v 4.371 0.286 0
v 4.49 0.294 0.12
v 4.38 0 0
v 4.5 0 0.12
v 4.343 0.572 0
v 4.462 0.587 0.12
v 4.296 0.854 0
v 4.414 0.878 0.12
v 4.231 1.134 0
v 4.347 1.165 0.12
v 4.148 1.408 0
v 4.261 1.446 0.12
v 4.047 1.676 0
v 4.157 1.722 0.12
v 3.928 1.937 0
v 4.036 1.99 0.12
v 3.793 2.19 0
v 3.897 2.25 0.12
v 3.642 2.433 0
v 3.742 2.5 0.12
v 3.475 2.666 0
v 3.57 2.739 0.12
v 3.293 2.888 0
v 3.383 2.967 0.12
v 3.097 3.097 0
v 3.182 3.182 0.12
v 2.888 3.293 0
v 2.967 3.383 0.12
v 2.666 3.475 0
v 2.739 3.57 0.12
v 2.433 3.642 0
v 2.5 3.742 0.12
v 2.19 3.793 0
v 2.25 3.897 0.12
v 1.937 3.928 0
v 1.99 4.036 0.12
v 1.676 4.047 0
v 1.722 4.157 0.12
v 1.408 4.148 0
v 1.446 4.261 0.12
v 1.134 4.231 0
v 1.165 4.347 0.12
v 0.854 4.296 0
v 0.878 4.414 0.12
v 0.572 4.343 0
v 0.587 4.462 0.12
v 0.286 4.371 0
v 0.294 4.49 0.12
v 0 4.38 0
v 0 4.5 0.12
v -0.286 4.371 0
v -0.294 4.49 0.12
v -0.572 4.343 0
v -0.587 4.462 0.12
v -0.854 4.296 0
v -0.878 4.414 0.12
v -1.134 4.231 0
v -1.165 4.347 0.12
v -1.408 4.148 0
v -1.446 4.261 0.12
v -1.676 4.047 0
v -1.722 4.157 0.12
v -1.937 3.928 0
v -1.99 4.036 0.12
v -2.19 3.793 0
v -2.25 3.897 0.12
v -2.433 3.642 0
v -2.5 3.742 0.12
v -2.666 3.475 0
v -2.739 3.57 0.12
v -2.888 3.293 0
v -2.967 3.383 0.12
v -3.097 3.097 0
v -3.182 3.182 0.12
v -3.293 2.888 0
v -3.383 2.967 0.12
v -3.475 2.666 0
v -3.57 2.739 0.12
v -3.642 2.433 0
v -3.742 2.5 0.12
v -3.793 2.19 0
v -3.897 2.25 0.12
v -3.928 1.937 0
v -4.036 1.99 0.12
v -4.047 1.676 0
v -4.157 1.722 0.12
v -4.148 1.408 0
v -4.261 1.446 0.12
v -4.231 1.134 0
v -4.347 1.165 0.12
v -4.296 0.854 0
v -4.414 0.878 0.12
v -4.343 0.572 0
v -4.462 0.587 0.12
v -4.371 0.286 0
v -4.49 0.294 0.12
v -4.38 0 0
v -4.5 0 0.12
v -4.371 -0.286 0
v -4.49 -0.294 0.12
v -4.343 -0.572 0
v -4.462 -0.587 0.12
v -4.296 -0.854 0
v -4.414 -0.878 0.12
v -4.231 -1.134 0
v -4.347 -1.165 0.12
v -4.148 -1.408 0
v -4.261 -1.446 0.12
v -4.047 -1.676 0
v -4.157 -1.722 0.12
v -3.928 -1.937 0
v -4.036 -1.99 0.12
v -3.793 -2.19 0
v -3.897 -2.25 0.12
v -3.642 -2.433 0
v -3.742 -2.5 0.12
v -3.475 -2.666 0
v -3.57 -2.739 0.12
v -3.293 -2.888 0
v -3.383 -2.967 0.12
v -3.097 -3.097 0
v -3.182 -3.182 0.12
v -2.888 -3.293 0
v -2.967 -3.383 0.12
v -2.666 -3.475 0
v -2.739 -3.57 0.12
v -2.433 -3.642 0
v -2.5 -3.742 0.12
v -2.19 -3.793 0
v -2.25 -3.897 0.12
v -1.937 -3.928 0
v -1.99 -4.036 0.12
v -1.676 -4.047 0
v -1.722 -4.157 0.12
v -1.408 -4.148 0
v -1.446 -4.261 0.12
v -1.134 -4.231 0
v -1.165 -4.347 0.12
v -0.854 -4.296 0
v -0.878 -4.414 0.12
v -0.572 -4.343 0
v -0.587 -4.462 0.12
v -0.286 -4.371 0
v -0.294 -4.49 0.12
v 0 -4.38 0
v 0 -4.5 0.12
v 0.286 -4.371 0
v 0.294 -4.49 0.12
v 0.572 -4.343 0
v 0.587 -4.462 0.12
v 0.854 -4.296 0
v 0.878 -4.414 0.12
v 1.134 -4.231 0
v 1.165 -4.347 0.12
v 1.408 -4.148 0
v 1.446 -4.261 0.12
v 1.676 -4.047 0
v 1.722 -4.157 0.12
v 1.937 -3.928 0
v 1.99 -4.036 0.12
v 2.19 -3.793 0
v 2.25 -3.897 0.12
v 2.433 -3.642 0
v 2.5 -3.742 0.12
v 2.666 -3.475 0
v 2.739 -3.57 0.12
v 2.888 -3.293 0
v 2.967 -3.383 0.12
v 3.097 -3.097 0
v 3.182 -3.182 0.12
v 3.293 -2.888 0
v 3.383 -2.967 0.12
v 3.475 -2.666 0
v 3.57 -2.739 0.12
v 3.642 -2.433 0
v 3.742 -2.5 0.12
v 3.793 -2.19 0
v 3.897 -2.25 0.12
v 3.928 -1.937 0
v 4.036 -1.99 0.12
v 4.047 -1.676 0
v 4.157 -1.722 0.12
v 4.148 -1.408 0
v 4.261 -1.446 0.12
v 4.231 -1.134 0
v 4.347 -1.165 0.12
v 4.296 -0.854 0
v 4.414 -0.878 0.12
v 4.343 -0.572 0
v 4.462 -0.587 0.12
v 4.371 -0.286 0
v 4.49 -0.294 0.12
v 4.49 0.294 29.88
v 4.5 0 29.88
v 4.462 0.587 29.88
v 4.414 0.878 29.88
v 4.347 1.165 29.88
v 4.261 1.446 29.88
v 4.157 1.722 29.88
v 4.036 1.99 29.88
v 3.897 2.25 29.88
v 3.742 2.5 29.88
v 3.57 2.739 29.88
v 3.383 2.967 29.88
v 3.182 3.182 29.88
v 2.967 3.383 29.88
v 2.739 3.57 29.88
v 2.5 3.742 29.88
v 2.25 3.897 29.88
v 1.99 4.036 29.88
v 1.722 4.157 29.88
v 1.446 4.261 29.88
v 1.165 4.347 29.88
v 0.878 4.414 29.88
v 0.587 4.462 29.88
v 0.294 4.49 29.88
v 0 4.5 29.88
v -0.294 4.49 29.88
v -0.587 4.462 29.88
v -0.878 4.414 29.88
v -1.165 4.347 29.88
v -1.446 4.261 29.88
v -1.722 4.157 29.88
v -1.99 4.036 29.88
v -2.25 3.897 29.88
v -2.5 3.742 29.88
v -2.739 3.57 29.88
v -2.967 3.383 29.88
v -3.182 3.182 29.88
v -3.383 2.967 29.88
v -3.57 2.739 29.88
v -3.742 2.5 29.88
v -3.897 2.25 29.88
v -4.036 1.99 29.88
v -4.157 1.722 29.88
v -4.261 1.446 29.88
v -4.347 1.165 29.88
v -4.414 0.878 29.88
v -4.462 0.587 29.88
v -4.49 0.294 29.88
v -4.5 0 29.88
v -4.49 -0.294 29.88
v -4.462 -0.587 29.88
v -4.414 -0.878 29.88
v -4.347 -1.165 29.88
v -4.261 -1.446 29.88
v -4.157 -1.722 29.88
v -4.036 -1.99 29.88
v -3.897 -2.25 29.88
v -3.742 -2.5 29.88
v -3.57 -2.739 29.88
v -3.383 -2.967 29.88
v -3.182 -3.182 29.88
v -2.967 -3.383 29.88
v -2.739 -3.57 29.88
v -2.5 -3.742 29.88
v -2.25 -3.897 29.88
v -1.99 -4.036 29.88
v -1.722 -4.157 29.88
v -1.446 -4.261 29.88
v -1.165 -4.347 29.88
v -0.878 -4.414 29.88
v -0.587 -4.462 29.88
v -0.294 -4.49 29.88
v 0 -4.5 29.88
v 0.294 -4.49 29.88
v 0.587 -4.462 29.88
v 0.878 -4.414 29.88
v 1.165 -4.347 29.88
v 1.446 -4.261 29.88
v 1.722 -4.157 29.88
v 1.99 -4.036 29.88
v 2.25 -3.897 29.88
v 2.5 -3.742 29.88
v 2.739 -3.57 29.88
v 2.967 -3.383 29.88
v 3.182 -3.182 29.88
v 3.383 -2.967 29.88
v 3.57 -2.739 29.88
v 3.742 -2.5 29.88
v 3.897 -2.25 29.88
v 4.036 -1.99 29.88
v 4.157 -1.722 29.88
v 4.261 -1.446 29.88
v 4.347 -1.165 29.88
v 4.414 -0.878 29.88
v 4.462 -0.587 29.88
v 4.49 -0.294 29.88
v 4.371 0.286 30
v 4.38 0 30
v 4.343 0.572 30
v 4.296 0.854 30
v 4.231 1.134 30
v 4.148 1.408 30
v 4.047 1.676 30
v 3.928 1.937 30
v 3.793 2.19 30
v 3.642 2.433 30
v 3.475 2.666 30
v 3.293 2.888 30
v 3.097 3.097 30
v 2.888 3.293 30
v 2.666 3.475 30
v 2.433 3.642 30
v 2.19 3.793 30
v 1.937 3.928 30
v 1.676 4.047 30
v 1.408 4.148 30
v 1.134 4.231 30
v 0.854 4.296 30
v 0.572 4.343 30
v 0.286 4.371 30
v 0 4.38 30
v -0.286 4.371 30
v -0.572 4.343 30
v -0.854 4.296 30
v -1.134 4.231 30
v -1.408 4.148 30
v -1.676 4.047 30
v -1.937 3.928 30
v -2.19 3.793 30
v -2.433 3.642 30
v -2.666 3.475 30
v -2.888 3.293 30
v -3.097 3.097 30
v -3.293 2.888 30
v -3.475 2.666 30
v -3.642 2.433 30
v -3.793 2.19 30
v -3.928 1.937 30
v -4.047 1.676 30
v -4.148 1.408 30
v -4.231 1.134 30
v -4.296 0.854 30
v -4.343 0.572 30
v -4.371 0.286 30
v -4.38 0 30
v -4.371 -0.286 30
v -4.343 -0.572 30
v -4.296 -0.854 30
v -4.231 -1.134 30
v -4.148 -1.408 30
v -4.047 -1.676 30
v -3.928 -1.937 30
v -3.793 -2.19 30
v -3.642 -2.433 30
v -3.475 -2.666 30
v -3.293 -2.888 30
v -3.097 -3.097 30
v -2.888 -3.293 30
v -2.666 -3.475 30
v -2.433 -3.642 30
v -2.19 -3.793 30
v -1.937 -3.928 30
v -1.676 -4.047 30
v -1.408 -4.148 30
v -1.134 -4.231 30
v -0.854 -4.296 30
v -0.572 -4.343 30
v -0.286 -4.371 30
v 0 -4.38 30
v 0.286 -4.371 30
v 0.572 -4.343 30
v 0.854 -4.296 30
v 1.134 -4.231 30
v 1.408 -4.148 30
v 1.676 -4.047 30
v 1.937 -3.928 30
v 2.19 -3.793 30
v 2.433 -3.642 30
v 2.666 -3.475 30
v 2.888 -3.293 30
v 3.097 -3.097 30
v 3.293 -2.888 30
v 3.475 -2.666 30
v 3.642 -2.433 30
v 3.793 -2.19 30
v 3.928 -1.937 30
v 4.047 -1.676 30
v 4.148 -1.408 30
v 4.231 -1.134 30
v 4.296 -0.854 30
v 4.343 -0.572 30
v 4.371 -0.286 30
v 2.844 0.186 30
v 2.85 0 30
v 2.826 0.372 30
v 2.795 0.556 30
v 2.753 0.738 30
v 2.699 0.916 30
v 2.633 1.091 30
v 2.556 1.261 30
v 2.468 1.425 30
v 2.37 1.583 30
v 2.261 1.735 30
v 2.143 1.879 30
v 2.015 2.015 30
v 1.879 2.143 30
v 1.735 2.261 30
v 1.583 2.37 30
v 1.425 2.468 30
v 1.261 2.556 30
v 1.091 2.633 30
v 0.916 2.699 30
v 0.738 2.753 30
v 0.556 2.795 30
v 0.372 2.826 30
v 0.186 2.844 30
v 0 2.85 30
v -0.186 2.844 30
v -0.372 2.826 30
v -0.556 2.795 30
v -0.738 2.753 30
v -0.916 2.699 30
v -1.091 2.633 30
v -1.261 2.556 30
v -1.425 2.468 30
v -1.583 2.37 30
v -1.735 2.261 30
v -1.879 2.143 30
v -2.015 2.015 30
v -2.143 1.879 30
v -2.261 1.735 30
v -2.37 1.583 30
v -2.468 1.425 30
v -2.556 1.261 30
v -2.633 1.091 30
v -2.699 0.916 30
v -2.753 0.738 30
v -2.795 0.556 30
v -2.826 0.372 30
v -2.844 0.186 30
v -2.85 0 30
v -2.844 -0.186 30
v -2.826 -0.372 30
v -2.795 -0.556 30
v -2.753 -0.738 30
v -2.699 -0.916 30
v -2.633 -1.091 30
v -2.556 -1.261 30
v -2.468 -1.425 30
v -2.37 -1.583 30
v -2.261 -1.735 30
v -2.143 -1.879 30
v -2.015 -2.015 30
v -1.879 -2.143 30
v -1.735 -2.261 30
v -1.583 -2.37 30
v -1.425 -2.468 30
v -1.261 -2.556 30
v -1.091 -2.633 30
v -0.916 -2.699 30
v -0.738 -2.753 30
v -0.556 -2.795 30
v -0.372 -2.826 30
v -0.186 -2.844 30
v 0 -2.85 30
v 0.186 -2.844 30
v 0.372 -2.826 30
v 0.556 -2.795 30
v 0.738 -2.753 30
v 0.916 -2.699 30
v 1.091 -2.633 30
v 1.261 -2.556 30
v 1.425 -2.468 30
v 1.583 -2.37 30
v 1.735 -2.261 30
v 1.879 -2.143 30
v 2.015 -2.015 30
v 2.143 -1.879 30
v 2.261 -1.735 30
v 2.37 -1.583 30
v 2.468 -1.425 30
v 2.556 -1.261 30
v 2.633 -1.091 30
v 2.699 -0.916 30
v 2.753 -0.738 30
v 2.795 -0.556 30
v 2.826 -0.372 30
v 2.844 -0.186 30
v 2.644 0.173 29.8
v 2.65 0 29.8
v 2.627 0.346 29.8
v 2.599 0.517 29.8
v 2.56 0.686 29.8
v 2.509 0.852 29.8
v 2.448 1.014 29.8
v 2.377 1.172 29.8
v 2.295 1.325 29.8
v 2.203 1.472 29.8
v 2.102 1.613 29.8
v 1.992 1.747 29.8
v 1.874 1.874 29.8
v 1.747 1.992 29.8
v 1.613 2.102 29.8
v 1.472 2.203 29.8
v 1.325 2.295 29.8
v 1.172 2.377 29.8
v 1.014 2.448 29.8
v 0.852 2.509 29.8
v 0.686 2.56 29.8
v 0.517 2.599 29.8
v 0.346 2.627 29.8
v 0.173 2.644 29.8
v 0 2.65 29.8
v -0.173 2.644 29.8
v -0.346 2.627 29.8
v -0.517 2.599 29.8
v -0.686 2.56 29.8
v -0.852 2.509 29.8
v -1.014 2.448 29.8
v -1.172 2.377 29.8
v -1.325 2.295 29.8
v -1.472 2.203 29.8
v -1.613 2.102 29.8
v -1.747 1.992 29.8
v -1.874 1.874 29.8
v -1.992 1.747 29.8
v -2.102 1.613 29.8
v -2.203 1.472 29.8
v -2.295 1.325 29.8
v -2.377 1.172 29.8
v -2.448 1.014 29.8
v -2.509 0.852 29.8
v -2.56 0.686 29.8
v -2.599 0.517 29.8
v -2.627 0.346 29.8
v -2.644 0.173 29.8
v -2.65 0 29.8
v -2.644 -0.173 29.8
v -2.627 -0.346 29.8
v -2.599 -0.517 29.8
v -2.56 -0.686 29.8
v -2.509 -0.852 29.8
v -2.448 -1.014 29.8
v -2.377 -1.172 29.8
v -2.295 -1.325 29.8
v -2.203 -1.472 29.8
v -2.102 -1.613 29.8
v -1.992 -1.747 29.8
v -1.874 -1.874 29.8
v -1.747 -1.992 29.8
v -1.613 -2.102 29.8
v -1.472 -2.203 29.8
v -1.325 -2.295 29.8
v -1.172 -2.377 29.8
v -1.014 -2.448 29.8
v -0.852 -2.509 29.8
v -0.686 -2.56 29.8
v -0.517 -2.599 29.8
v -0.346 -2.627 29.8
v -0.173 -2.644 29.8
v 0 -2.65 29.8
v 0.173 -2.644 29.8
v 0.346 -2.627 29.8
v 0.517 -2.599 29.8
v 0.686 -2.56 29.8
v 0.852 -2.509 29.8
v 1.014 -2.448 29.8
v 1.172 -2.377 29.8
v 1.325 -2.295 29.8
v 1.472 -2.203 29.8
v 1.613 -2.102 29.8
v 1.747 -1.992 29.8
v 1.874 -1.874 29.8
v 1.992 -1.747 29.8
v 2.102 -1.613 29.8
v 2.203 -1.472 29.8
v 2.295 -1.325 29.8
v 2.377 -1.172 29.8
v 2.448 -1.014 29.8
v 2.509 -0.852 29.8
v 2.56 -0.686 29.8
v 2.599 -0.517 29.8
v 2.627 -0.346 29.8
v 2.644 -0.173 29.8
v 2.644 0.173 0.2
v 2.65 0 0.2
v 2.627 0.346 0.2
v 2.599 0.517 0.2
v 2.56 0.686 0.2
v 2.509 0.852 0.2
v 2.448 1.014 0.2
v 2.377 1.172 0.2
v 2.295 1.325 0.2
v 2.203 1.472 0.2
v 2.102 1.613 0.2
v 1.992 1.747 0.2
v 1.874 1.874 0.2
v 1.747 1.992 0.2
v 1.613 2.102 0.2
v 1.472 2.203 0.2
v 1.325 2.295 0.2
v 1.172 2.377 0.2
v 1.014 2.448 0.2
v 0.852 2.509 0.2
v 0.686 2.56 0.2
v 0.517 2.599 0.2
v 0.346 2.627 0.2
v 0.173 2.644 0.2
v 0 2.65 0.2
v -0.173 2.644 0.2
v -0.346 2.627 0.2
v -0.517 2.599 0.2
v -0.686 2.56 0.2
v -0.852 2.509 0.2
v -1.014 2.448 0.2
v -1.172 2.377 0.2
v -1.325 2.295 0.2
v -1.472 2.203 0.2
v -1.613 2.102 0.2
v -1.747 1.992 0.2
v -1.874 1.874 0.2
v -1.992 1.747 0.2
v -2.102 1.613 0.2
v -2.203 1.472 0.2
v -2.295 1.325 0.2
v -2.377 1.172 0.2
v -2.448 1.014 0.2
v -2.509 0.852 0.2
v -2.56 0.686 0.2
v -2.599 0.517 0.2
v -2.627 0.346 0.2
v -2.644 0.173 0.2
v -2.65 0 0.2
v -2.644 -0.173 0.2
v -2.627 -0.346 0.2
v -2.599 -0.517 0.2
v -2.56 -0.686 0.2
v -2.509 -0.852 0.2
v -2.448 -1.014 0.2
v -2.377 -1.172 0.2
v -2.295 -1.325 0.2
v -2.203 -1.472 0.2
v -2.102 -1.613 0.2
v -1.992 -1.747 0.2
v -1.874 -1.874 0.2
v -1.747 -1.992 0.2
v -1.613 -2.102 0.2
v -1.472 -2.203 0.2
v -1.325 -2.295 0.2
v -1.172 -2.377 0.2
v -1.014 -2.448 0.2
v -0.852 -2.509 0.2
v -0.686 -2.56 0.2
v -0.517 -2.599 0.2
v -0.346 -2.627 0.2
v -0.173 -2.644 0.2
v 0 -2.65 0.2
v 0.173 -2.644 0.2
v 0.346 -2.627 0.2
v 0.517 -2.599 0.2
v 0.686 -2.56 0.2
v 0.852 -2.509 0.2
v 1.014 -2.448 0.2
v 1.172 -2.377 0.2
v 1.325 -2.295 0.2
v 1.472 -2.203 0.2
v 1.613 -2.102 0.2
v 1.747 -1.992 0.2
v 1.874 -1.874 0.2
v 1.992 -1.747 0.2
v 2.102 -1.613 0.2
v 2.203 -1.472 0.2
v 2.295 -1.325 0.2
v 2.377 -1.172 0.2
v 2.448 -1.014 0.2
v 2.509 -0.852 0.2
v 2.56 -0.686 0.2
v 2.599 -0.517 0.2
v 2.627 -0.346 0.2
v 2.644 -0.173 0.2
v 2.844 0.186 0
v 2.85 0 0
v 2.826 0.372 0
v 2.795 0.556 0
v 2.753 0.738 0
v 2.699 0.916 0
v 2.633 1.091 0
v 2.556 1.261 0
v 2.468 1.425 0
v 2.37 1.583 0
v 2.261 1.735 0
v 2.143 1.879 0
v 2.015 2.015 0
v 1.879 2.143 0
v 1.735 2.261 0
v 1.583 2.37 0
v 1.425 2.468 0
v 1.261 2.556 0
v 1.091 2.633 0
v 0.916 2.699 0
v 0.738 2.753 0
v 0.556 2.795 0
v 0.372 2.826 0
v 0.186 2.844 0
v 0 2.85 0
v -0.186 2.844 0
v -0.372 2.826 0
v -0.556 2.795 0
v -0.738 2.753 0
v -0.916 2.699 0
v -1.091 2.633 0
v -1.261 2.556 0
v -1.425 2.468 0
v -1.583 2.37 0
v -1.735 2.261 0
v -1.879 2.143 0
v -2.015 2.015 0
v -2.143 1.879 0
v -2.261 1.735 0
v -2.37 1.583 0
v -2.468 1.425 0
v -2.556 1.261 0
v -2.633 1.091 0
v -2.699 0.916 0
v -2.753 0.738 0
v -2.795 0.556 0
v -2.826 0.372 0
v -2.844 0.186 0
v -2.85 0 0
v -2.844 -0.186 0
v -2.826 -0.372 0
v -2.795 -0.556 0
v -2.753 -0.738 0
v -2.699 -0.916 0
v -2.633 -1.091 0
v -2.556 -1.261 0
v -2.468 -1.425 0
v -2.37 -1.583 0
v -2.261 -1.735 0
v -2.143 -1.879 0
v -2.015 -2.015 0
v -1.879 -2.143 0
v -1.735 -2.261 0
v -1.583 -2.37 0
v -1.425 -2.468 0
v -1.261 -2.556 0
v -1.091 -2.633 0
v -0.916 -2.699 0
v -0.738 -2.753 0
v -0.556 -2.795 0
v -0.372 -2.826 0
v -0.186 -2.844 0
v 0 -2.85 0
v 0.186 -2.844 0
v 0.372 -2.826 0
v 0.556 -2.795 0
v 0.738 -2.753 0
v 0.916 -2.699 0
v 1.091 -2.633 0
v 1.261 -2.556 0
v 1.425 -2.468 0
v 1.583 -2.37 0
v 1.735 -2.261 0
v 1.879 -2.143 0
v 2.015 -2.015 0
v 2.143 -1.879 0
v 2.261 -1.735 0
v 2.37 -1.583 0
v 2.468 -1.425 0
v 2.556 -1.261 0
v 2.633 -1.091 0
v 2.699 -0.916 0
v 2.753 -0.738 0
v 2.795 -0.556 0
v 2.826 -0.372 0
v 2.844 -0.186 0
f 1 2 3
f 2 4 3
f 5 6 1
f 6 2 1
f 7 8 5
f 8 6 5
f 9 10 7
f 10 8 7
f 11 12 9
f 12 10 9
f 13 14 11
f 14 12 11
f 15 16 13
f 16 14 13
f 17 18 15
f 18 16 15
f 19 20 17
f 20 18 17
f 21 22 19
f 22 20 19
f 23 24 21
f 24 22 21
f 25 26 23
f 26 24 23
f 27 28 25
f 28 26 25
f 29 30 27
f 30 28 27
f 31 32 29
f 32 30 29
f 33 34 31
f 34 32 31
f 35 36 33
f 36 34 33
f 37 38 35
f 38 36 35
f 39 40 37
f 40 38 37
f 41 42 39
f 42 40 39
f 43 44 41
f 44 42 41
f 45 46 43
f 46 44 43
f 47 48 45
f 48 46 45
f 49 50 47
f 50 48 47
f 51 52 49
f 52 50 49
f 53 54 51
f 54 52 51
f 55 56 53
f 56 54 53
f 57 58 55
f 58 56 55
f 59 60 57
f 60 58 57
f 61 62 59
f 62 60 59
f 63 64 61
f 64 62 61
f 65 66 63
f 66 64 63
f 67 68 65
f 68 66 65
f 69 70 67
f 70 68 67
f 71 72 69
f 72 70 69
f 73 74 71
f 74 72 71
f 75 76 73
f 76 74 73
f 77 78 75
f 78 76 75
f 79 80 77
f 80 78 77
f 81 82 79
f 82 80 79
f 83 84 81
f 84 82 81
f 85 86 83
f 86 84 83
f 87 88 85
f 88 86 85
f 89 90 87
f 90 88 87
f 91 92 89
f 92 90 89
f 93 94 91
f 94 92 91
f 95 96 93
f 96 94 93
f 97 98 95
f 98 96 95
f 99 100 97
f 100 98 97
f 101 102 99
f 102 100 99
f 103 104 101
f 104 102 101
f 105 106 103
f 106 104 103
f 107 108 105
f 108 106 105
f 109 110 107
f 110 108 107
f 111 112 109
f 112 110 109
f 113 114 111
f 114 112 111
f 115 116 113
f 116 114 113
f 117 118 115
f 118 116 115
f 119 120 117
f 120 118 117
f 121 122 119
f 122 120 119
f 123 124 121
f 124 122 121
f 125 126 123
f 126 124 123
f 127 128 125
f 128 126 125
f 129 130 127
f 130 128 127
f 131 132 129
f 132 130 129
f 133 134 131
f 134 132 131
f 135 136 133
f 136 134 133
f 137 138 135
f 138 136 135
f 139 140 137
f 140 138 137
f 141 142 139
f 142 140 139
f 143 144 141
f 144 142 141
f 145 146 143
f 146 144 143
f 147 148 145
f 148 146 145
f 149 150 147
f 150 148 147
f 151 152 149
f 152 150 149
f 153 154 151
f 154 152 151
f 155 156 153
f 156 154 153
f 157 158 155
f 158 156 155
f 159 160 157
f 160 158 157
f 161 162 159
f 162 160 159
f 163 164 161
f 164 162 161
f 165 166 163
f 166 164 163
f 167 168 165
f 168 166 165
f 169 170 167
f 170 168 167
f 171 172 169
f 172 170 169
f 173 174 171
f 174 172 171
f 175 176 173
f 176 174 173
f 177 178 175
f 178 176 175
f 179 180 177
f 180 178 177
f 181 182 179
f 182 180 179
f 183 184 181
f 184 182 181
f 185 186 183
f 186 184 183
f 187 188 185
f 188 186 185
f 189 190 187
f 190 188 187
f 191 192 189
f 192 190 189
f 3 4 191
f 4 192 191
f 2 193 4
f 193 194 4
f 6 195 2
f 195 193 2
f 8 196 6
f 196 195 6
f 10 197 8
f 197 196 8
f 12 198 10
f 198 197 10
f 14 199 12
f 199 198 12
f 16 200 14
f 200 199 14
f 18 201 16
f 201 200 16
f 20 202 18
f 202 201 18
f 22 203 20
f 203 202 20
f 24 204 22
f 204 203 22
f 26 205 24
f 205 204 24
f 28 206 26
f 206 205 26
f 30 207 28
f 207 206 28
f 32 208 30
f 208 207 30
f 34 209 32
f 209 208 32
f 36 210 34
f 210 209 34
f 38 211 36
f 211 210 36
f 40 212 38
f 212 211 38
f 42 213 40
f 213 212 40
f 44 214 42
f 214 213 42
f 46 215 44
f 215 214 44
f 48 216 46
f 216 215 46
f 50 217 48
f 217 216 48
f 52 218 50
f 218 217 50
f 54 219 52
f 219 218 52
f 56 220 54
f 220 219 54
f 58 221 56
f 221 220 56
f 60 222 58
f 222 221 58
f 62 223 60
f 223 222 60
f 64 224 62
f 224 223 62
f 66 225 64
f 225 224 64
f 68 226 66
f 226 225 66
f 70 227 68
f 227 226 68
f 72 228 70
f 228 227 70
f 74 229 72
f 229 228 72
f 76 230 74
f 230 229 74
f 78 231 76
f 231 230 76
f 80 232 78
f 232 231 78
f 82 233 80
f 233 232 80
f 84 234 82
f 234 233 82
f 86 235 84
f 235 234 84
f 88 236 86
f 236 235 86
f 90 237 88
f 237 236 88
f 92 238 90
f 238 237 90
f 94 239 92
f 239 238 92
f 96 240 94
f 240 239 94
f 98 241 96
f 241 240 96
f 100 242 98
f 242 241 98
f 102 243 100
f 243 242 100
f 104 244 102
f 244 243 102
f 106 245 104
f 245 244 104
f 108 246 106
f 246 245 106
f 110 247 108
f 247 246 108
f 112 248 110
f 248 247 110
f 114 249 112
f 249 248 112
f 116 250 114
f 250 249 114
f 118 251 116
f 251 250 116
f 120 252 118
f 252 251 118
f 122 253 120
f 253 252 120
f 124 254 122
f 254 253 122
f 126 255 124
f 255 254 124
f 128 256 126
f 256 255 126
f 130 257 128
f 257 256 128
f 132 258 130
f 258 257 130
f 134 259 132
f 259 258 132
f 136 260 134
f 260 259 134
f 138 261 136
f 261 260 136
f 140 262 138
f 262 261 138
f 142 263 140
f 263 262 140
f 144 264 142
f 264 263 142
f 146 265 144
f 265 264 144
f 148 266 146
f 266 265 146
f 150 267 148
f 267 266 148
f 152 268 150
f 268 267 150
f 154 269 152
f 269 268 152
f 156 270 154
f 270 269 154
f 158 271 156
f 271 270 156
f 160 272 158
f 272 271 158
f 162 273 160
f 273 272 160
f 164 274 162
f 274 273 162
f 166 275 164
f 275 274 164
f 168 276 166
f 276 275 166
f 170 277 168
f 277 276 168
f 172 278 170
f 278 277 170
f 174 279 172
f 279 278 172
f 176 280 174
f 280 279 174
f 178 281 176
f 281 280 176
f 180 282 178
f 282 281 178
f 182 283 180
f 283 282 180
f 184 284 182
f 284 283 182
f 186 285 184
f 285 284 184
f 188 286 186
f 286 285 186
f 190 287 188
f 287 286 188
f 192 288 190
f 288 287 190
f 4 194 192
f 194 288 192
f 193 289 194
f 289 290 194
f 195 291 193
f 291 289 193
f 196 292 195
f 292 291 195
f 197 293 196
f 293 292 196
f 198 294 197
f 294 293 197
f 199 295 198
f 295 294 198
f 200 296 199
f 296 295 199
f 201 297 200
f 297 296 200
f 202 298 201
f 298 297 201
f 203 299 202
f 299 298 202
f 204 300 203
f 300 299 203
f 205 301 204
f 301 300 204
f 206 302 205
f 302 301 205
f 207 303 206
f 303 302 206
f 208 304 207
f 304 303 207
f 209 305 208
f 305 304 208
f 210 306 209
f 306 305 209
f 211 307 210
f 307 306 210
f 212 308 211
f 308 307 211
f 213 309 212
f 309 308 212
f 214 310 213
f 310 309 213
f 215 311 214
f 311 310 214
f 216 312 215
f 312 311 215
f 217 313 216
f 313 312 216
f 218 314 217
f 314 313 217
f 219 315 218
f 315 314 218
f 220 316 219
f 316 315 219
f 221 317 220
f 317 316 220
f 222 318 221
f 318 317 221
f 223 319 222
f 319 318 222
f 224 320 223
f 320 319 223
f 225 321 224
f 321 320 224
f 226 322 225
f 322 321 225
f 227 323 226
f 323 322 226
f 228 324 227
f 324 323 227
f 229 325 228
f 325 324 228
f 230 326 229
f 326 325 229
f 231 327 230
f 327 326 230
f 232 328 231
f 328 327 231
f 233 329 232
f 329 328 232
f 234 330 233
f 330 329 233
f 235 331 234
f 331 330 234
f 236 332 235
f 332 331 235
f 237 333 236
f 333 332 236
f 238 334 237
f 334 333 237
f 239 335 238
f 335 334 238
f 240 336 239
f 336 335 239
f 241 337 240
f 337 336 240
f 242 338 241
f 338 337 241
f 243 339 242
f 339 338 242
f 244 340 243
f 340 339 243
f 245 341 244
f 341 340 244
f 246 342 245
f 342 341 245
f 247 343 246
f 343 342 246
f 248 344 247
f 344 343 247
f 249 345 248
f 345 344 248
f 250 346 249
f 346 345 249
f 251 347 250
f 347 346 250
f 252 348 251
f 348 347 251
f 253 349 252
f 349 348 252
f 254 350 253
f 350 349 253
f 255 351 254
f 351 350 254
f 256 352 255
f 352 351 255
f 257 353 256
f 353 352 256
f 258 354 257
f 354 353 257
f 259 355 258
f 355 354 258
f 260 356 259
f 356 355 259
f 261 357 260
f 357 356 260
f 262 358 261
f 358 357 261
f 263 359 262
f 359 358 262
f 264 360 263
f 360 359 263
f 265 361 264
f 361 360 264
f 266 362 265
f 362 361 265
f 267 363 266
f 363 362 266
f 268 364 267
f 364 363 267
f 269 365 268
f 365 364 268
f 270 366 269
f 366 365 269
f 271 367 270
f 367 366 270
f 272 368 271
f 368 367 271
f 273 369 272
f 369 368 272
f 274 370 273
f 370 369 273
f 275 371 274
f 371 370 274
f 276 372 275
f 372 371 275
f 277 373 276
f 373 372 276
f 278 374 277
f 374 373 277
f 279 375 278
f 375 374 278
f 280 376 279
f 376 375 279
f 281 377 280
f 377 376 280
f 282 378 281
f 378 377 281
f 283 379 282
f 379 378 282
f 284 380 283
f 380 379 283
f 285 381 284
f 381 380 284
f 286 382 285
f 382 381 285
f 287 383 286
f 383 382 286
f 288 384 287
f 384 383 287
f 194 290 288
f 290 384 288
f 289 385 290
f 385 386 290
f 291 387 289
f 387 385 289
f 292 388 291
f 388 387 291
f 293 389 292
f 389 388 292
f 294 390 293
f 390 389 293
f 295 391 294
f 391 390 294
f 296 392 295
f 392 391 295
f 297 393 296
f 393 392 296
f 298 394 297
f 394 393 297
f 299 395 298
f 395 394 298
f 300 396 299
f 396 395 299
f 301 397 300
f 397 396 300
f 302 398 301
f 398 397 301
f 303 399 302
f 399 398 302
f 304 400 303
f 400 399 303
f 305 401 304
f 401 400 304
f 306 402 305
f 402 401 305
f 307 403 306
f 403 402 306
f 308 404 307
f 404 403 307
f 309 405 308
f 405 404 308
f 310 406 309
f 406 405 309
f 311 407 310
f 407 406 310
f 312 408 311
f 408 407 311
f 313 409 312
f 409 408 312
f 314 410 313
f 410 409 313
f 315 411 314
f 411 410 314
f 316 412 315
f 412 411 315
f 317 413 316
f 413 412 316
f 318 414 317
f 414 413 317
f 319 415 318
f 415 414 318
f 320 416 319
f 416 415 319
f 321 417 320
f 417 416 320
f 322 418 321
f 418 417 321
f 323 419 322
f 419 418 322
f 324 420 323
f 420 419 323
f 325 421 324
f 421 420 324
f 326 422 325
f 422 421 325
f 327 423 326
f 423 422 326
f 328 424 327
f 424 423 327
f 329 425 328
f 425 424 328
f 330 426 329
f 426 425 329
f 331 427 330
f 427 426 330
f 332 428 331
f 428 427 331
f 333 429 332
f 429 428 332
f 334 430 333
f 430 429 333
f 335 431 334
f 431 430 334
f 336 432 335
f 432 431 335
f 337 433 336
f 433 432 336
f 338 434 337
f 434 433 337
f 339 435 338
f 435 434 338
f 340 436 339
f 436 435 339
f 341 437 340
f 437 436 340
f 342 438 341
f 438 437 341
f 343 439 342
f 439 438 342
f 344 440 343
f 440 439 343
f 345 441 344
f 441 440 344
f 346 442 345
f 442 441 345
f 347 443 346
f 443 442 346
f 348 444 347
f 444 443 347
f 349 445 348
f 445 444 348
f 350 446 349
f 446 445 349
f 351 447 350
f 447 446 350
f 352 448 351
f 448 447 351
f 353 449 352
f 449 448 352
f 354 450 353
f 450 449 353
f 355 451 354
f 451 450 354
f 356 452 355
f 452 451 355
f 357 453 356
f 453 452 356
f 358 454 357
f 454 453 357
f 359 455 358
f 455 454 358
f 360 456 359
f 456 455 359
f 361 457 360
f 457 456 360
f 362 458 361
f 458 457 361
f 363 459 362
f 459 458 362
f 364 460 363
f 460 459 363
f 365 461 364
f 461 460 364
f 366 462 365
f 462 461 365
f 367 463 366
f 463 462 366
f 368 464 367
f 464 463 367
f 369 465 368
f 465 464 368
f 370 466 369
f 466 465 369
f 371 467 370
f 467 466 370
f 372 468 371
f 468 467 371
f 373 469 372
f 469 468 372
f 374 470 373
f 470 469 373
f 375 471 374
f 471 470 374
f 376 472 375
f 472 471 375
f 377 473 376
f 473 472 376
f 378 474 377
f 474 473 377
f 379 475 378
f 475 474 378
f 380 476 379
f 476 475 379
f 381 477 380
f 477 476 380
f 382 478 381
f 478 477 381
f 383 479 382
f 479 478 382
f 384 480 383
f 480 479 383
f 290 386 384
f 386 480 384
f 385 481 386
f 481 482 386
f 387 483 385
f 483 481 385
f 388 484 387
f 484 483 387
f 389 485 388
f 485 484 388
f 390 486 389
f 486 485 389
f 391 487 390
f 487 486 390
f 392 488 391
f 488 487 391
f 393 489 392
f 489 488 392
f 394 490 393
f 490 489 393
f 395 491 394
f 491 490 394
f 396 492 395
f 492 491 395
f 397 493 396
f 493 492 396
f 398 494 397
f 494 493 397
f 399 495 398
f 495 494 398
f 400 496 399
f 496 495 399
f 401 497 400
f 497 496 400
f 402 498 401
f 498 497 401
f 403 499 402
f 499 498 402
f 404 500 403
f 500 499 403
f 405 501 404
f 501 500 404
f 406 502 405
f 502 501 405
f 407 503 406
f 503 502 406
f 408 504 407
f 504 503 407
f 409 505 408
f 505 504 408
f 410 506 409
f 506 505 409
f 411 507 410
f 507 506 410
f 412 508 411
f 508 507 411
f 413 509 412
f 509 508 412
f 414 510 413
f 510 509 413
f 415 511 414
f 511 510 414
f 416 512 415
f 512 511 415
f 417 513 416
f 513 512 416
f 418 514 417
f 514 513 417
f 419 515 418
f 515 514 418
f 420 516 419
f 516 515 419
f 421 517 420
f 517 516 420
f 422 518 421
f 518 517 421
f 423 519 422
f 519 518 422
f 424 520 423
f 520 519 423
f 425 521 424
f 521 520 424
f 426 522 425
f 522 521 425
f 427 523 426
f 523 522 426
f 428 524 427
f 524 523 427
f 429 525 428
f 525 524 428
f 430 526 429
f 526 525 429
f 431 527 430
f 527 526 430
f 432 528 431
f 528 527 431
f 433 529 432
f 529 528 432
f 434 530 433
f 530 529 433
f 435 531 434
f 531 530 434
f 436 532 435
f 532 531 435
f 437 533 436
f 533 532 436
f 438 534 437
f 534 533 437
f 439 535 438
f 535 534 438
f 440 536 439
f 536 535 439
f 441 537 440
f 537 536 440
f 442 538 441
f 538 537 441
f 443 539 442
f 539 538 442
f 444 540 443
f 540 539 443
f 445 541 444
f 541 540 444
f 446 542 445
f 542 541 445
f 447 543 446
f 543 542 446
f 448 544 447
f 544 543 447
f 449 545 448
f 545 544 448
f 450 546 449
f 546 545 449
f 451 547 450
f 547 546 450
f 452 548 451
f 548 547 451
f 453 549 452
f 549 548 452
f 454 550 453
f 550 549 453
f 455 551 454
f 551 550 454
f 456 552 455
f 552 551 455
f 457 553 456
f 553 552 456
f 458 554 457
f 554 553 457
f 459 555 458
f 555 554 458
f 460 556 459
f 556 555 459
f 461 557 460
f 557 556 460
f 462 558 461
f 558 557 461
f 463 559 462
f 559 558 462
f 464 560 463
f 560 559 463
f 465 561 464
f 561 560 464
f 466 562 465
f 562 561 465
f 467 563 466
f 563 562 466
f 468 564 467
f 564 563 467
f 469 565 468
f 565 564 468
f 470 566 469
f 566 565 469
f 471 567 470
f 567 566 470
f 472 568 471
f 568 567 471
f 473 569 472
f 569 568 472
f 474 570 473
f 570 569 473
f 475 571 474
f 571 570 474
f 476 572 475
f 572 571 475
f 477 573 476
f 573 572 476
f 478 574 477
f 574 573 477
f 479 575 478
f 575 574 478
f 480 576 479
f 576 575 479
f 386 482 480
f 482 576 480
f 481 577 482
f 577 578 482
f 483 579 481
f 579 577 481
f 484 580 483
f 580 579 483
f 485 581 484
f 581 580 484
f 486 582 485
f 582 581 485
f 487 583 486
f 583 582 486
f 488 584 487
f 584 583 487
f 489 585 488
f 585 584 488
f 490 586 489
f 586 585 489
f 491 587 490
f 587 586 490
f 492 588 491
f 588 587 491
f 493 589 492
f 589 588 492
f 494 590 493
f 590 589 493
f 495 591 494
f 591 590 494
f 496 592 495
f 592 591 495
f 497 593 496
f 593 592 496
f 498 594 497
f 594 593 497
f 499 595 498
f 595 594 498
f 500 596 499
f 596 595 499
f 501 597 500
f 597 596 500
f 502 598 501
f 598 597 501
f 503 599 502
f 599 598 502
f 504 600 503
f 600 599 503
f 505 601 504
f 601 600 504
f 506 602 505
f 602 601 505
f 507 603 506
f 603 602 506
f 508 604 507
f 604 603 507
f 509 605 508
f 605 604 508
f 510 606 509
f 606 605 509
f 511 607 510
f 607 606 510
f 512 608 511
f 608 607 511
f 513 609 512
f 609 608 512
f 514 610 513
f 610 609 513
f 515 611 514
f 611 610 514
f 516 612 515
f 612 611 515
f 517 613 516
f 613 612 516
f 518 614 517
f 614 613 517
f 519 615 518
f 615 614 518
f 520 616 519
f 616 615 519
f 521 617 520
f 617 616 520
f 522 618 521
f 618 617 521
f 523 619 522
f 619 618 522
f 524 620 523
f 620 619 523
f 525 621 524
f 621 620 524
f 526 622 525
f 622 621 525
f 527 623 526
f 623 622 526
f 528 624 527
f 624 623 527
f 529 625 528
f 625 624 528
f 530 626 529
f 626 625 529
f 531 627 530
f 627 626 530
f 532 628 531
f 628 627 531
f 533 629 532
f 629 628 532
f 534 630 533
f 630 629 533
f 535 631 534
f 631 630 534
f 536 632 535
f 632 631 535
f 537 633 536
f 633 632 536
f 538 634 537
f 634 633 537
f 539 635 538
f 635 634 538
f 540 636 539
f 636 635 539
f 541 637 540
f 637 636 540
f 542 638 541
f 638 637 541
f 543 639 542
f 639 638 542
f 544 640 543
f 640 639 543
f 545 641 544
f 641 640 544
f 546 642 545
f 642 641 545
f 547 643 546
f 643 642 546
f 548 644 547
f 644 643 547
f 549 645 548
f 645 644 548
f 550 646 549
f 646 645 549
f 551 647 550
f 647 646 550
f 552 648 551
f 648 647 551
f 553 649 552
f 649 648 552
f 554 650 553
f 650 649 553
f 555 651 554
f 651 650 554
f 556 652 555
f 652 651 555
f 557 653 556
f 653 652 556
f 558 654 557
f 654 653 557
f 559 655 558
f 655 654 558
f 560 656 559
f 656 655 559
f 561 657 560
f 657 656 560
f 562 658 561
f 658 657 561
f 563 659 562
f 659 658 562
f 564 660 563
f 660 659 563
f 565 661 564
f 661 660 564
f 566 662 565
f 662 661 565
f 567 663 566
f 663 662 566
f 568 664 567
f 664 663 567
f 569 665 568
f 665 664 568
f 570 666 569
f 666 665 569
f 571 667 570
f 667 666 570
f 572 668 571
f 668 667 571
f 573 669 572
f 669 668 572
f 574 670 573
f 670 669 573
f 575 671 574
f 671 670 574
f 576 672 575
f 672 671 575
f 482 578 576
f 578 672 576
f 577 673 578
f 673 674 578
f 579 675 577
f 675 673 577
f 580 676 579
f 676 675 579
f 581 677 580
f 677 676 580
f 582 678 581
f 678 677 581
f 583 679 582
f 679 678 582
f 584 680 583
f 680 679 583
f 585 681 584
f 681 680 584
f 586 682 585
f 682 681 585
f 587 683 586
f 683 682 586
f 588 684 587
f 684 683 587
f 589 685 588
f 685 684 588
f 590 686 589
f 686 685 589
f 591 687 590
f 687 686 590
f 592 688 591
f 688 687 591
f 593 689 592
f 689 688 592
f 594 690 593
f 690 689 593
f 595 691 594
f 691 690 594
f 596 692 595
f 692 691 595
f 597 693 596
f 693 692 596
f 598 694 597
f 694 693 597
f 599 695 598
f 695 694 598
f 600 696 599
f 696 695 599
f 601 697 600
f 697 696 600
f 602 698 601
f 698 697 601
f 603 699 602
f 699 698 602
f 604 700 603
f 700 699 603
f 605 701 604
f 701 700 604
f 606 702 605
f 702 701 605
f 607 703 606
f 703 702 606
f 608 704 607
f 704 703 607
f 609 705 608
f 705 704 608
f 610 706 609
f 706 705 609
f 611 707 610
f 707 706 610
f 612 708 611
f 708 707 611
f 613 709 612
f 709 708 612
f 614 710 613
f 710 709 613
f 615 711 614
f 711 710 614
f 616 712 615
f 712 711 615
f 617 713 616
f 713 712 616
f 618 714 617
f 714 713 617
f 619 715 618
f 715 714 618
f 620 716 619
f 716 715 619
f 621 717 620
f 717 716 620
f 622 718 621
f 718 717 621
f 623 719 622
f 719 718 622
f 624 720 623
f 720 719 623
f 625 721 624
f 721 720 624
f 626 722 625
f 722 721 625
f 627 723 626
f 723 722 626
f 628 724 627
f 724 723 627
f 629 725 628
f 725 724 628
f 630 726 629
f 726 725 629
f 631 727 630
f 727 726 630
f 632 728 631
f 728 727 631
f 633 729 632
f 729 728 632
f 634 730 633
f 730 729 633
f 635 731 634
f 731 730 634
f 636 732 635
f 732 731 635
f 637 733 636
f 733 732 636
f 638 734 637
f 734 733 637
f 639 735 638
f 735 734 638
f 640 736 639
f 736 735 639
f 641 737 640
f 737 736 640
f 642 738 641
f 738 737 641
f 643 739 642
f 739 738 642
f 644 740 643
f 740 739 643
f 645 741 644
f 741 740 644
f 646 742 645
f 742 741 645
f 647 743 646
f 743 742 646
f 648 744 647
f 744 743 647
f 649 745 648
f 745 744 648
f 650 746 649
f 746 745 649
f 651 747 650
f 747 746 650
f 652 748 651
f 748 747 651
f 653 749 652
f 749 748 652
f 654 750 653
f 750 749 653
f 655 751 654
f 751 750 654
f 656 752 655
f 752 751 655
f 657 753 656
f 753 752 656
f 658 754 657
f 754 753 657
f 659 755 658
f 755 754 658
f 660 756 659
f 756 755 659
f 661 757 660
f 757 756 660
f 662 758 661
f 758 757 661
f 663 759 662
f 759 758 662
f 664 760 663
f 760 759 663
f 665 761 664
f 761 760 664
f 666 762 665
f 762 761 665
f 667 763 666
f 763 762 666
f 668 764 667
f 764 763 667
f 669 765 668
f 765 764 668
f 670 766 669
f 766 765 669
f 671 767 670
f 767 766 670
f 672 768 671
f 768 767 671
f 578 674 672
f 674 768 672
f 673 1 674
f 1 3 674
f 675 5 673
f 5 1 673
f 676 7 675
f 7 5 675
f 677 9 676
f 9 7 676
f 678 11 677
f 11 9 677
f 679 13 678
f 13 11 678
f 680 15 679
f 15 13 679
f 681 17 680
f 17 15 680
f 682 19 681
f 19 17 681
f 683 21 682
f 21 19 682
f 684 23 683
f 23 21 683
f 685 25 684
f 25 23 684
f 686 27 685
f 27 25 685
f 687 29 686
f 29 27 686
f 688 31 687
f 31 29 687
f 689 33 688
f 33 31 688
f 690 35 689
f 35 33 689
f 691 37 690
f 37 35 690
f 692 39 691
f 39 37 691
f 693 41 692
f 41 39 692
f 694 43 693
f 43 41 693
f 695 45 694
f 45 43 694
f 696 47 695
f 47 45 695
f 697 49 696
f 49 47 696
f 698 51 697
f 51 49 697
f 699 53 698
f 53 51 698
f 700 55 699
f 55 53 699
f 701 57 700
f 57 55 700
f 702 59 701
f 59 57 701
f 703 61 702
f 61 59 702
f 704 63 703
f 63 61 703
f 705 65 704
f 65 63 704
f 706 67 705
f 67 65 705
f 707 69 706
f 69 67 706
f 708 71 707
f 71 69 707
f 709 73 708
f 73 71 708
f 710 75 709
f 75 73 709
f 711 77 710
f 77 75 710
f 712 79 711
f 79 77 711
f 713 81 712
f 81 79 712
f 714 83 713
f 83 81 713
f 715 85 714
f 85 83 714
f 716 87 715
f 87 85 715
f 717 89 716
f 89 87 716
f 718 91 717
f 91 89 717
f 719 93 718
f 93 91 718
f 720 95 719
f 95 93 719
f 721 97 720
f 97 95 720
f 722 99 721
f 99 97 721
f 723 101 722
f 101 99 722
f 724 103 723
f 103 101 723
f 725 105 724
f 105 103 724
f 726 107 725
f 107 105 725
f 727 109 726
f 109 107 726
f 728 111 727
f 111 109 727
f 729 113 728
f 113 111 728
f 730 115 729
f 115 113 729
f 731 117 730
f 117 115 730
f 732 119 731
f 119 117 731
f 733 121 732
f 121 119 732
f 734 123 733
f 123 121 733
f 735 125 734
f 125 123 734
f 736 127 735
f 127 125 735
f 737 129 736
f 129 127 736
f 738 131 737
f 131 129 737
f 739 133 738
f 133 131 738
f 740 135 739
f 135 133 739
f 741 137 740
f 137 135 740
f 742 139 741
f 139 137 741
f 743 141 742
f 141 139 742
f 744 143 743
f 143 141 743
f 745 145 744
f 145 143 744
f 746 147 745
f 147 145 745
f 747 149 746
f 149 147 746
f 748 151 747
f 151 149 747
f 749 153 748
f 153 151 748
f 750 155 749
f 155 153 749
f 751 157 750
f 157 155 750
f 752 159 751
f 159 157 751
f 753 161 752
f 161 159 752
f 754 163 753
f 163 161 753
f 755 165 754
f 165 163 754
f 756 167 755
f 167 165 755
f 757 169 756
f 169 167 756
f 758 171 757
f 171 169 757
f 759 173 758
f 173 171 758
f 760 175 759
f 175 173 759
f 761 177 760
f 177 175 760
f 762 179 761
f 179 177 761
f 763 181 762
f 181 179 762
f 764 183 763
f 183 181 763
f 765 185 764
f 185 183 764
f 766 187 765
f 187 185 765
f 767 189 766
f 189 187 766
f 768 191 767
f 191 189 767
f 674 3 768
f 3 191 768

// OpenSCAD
// OOMP generic catalogue model; units: mm.
// Stud length is additional to body depth. Tapping depths are model assumptions.
variant = "full"; // [full, display]
family = "spacer";
connection_type = "plain";
depth_mm = 30;
stud_length_mm = 0;
tapped_depth_mm = 0;
bore_mm = 5.3;
outer_diameter_mm = 9;
across_flats_mm = 6;
thread_nominal_diameter_mm = 3;
thread_pitch_mm = 0.5;
edge_chamfer_mm = 0.12;
mouth_chamfer_mm = 0.2;
angular_segments = 96;
samples_per_pitch = 16;

// Boundary travels up the outside, then down any tapped/plain bore.
// Equal-height rings at shoulders form the annular shoulder faces.
n = angular_segments;
threaded = family == "standoff";
has_stud = connection_type == "stud_to_tapped" || connection_type == "stud_to_stud";
two_studs = connection_type == "stud_to_stud";
through = !threaded || connection_type == "tapped_to_tapped";
pitch = thread_pitch_mm;
diameter = threaded ? thread_nominal_diameter_mm : bore_mm;
minor = diameter - 5*sqrt(3)*pitch/8;
transition = mouth_chamfer_mm + (threaded ? 5*sqrt(3)*pitch/16 : 0);
tip_chamfer = mouth_chamfer_mm + 17*sqrt(3)*pitch/48;
function sorted(v) = len(v)<=1 ? v : let(p=v[0])
    concat(sorted([for(x=v) if(x<p-1e-8) x]), [p], sorted([for(x=v) if(x>p+1e-8) x]));
function reverse(v) = [for(i=[len(v)-1:-1:0]) v[i]];
function theta(i) = i*360/n;
function fract(x) = x-floor(x);
function phase_distance(i,z) = abs(fract(z/pitch-theta(i)/360+0.5)-0.5);
function thread_r(i,z) = minor/2 + min(5*sqrt(3)*pitch/16,
    max(0,(phase_distance(i,z)-0.125)*pitch*sqrt(3)));
function stud_r(i,z,tip) = min(diameter/2 - (variant=="full" ?
    min(17*sqrt(3)*pitch/48,max(0,(phase_distance(i,z)-0.0625)*pitch*sqrt(3))) : 0),
    diameter/2-tip_chamfer+abs(z-tip));
function body_r(i,z) = (threaded ? across_flats_mm/2/cos(theta(i)%60-30) : outer_diameter_mm/2)
    - max(0,edge_chamfer_mm-min(z,depth_mm-z));
function bore_r(i,z) = max(threaded ? (variant=="full" ? thread_r(i,z) : minor/2) : diameter/2,
    diameter/2+mouth_chamfer_mm-(through ? min(z,depth_mm-z) : depth_mm-z));
function stud_z(a,b,tip) = let(count=variant=="full" ? ceil(stud_length_mm/pitch*samples_per_pitch) : 1)
    sorted(concat([for(i=[0:count]) a+(b-a)*i/count], [tip==a ? tip+tip_chamfer : tip-tip_chamfer]));
body_z = sorted([0,edge_chamfer_mm,depth_mm-edge_chamfer_mm,depth_mm]);
low = through ? 0 : depth_mm-tapped_depth_mm;
count = threaded && variant=="full" ? ceil((depth_mm-low)/pitch*samples_per_pitch) : 1;
bore_z = two_studs ? [] : reverse(sorted(concat(
    [for(i=[0:count]) low+(depth_mm-low)*i/count],
    [depth_mm-mouth_chamfer_mm,depth_mm-transition],
    through ? [mouth_chamfer_mm,transition] : [])));
// Ring descriptors: [height, kind, tip]. Kind: 0 body, 1 stud, 2 bore.
rings = concat(
    has_stud ? [for(z=stud_z(-stud_length_mm,0,-stud_length_mm)) [z,1,-stud_length_mm]] : [],
    [for(z=body_z) [z,0,0]],
    two_studs ? [for(z=stud_z(depth_mm,depth_mm+stud_length_mm,depth_mm+stud_length_mm)) [z,1,depth_mm+stud_length_mm]] : [],
    [for(z=bore_z) [z,2,0]]);
function radius(i,ring) = ring[1]==0 ? body_r(i,ring[0]) :
    ring[1]==1 ? stud_r(i,ring[0],ring[2]) : bore_r(i,ring[0]);
points = concat([for(ring=rings) for(i=[0:n-1])
    [radius(i,ring)*cos(theta(i)),radius(i,ring)*sin(theta(i)),ring[0]]],
    through ? [] : [[0,0,rings[0][0]],[0,0,rings[len(rings)-1][0]]]);
center = len(rings)*n;
last = (len(rings)-1)*n;
// OpenSCAD winding is opposite to STL winding.
faces = concat(
    [for(j=[0:len(rings)-(through ? 1 : 2)]) for(i=[0:n-1]) each
        let(a=j*n+i,b=j*n+(i+1)%n,c=((j+1)%len(rings))*n+(i+1)%n,d=((j+1)%len(rings))*n+i)
        [[a,c,b],[a,d,c]]],
    through ? [] : [for(i=[0:n-1]) each let(k=(i+1)%n)
        [[center,i,k],[center+1,last+k,last+i]]]);
assert(family=="spacer" || family=="standoff");
assert(!threaded || connection_type=="tapped_to_tapped" || has_stud);
assert(depth_mm>0 && diameter>0 && pitch>0);
assert(variant=="full" || variant=="display");
assert(n>=24 && n%12==0 && samples_per_pitch>=8);
assert(mouth_chamfer_mm>0 && mouth_chamfer_mm<depth_mm/2);
assert(edge_chamfer_mm>=0 && edge_chamfer_mm<depth_mm/2);
assert(diameter+4*max(mouth_chamfer_mm,edge_chamfer_mm) < (threaded ? across_flats_mm : outer_diameter_mm));
assert(!has_stud || stud_length_mm>2*mouth_chamfer_mm);
assert(!through || !threaded || 2*transition<depth_mm);
assert(connection_type!="stud_to_tapped" || (tapped_depth_mm>transition && tapped_depth_mm<depth_mm));
color([0.86,0.85,0.81]) polyhedron(points=points,faces=faces,convexity=20);
